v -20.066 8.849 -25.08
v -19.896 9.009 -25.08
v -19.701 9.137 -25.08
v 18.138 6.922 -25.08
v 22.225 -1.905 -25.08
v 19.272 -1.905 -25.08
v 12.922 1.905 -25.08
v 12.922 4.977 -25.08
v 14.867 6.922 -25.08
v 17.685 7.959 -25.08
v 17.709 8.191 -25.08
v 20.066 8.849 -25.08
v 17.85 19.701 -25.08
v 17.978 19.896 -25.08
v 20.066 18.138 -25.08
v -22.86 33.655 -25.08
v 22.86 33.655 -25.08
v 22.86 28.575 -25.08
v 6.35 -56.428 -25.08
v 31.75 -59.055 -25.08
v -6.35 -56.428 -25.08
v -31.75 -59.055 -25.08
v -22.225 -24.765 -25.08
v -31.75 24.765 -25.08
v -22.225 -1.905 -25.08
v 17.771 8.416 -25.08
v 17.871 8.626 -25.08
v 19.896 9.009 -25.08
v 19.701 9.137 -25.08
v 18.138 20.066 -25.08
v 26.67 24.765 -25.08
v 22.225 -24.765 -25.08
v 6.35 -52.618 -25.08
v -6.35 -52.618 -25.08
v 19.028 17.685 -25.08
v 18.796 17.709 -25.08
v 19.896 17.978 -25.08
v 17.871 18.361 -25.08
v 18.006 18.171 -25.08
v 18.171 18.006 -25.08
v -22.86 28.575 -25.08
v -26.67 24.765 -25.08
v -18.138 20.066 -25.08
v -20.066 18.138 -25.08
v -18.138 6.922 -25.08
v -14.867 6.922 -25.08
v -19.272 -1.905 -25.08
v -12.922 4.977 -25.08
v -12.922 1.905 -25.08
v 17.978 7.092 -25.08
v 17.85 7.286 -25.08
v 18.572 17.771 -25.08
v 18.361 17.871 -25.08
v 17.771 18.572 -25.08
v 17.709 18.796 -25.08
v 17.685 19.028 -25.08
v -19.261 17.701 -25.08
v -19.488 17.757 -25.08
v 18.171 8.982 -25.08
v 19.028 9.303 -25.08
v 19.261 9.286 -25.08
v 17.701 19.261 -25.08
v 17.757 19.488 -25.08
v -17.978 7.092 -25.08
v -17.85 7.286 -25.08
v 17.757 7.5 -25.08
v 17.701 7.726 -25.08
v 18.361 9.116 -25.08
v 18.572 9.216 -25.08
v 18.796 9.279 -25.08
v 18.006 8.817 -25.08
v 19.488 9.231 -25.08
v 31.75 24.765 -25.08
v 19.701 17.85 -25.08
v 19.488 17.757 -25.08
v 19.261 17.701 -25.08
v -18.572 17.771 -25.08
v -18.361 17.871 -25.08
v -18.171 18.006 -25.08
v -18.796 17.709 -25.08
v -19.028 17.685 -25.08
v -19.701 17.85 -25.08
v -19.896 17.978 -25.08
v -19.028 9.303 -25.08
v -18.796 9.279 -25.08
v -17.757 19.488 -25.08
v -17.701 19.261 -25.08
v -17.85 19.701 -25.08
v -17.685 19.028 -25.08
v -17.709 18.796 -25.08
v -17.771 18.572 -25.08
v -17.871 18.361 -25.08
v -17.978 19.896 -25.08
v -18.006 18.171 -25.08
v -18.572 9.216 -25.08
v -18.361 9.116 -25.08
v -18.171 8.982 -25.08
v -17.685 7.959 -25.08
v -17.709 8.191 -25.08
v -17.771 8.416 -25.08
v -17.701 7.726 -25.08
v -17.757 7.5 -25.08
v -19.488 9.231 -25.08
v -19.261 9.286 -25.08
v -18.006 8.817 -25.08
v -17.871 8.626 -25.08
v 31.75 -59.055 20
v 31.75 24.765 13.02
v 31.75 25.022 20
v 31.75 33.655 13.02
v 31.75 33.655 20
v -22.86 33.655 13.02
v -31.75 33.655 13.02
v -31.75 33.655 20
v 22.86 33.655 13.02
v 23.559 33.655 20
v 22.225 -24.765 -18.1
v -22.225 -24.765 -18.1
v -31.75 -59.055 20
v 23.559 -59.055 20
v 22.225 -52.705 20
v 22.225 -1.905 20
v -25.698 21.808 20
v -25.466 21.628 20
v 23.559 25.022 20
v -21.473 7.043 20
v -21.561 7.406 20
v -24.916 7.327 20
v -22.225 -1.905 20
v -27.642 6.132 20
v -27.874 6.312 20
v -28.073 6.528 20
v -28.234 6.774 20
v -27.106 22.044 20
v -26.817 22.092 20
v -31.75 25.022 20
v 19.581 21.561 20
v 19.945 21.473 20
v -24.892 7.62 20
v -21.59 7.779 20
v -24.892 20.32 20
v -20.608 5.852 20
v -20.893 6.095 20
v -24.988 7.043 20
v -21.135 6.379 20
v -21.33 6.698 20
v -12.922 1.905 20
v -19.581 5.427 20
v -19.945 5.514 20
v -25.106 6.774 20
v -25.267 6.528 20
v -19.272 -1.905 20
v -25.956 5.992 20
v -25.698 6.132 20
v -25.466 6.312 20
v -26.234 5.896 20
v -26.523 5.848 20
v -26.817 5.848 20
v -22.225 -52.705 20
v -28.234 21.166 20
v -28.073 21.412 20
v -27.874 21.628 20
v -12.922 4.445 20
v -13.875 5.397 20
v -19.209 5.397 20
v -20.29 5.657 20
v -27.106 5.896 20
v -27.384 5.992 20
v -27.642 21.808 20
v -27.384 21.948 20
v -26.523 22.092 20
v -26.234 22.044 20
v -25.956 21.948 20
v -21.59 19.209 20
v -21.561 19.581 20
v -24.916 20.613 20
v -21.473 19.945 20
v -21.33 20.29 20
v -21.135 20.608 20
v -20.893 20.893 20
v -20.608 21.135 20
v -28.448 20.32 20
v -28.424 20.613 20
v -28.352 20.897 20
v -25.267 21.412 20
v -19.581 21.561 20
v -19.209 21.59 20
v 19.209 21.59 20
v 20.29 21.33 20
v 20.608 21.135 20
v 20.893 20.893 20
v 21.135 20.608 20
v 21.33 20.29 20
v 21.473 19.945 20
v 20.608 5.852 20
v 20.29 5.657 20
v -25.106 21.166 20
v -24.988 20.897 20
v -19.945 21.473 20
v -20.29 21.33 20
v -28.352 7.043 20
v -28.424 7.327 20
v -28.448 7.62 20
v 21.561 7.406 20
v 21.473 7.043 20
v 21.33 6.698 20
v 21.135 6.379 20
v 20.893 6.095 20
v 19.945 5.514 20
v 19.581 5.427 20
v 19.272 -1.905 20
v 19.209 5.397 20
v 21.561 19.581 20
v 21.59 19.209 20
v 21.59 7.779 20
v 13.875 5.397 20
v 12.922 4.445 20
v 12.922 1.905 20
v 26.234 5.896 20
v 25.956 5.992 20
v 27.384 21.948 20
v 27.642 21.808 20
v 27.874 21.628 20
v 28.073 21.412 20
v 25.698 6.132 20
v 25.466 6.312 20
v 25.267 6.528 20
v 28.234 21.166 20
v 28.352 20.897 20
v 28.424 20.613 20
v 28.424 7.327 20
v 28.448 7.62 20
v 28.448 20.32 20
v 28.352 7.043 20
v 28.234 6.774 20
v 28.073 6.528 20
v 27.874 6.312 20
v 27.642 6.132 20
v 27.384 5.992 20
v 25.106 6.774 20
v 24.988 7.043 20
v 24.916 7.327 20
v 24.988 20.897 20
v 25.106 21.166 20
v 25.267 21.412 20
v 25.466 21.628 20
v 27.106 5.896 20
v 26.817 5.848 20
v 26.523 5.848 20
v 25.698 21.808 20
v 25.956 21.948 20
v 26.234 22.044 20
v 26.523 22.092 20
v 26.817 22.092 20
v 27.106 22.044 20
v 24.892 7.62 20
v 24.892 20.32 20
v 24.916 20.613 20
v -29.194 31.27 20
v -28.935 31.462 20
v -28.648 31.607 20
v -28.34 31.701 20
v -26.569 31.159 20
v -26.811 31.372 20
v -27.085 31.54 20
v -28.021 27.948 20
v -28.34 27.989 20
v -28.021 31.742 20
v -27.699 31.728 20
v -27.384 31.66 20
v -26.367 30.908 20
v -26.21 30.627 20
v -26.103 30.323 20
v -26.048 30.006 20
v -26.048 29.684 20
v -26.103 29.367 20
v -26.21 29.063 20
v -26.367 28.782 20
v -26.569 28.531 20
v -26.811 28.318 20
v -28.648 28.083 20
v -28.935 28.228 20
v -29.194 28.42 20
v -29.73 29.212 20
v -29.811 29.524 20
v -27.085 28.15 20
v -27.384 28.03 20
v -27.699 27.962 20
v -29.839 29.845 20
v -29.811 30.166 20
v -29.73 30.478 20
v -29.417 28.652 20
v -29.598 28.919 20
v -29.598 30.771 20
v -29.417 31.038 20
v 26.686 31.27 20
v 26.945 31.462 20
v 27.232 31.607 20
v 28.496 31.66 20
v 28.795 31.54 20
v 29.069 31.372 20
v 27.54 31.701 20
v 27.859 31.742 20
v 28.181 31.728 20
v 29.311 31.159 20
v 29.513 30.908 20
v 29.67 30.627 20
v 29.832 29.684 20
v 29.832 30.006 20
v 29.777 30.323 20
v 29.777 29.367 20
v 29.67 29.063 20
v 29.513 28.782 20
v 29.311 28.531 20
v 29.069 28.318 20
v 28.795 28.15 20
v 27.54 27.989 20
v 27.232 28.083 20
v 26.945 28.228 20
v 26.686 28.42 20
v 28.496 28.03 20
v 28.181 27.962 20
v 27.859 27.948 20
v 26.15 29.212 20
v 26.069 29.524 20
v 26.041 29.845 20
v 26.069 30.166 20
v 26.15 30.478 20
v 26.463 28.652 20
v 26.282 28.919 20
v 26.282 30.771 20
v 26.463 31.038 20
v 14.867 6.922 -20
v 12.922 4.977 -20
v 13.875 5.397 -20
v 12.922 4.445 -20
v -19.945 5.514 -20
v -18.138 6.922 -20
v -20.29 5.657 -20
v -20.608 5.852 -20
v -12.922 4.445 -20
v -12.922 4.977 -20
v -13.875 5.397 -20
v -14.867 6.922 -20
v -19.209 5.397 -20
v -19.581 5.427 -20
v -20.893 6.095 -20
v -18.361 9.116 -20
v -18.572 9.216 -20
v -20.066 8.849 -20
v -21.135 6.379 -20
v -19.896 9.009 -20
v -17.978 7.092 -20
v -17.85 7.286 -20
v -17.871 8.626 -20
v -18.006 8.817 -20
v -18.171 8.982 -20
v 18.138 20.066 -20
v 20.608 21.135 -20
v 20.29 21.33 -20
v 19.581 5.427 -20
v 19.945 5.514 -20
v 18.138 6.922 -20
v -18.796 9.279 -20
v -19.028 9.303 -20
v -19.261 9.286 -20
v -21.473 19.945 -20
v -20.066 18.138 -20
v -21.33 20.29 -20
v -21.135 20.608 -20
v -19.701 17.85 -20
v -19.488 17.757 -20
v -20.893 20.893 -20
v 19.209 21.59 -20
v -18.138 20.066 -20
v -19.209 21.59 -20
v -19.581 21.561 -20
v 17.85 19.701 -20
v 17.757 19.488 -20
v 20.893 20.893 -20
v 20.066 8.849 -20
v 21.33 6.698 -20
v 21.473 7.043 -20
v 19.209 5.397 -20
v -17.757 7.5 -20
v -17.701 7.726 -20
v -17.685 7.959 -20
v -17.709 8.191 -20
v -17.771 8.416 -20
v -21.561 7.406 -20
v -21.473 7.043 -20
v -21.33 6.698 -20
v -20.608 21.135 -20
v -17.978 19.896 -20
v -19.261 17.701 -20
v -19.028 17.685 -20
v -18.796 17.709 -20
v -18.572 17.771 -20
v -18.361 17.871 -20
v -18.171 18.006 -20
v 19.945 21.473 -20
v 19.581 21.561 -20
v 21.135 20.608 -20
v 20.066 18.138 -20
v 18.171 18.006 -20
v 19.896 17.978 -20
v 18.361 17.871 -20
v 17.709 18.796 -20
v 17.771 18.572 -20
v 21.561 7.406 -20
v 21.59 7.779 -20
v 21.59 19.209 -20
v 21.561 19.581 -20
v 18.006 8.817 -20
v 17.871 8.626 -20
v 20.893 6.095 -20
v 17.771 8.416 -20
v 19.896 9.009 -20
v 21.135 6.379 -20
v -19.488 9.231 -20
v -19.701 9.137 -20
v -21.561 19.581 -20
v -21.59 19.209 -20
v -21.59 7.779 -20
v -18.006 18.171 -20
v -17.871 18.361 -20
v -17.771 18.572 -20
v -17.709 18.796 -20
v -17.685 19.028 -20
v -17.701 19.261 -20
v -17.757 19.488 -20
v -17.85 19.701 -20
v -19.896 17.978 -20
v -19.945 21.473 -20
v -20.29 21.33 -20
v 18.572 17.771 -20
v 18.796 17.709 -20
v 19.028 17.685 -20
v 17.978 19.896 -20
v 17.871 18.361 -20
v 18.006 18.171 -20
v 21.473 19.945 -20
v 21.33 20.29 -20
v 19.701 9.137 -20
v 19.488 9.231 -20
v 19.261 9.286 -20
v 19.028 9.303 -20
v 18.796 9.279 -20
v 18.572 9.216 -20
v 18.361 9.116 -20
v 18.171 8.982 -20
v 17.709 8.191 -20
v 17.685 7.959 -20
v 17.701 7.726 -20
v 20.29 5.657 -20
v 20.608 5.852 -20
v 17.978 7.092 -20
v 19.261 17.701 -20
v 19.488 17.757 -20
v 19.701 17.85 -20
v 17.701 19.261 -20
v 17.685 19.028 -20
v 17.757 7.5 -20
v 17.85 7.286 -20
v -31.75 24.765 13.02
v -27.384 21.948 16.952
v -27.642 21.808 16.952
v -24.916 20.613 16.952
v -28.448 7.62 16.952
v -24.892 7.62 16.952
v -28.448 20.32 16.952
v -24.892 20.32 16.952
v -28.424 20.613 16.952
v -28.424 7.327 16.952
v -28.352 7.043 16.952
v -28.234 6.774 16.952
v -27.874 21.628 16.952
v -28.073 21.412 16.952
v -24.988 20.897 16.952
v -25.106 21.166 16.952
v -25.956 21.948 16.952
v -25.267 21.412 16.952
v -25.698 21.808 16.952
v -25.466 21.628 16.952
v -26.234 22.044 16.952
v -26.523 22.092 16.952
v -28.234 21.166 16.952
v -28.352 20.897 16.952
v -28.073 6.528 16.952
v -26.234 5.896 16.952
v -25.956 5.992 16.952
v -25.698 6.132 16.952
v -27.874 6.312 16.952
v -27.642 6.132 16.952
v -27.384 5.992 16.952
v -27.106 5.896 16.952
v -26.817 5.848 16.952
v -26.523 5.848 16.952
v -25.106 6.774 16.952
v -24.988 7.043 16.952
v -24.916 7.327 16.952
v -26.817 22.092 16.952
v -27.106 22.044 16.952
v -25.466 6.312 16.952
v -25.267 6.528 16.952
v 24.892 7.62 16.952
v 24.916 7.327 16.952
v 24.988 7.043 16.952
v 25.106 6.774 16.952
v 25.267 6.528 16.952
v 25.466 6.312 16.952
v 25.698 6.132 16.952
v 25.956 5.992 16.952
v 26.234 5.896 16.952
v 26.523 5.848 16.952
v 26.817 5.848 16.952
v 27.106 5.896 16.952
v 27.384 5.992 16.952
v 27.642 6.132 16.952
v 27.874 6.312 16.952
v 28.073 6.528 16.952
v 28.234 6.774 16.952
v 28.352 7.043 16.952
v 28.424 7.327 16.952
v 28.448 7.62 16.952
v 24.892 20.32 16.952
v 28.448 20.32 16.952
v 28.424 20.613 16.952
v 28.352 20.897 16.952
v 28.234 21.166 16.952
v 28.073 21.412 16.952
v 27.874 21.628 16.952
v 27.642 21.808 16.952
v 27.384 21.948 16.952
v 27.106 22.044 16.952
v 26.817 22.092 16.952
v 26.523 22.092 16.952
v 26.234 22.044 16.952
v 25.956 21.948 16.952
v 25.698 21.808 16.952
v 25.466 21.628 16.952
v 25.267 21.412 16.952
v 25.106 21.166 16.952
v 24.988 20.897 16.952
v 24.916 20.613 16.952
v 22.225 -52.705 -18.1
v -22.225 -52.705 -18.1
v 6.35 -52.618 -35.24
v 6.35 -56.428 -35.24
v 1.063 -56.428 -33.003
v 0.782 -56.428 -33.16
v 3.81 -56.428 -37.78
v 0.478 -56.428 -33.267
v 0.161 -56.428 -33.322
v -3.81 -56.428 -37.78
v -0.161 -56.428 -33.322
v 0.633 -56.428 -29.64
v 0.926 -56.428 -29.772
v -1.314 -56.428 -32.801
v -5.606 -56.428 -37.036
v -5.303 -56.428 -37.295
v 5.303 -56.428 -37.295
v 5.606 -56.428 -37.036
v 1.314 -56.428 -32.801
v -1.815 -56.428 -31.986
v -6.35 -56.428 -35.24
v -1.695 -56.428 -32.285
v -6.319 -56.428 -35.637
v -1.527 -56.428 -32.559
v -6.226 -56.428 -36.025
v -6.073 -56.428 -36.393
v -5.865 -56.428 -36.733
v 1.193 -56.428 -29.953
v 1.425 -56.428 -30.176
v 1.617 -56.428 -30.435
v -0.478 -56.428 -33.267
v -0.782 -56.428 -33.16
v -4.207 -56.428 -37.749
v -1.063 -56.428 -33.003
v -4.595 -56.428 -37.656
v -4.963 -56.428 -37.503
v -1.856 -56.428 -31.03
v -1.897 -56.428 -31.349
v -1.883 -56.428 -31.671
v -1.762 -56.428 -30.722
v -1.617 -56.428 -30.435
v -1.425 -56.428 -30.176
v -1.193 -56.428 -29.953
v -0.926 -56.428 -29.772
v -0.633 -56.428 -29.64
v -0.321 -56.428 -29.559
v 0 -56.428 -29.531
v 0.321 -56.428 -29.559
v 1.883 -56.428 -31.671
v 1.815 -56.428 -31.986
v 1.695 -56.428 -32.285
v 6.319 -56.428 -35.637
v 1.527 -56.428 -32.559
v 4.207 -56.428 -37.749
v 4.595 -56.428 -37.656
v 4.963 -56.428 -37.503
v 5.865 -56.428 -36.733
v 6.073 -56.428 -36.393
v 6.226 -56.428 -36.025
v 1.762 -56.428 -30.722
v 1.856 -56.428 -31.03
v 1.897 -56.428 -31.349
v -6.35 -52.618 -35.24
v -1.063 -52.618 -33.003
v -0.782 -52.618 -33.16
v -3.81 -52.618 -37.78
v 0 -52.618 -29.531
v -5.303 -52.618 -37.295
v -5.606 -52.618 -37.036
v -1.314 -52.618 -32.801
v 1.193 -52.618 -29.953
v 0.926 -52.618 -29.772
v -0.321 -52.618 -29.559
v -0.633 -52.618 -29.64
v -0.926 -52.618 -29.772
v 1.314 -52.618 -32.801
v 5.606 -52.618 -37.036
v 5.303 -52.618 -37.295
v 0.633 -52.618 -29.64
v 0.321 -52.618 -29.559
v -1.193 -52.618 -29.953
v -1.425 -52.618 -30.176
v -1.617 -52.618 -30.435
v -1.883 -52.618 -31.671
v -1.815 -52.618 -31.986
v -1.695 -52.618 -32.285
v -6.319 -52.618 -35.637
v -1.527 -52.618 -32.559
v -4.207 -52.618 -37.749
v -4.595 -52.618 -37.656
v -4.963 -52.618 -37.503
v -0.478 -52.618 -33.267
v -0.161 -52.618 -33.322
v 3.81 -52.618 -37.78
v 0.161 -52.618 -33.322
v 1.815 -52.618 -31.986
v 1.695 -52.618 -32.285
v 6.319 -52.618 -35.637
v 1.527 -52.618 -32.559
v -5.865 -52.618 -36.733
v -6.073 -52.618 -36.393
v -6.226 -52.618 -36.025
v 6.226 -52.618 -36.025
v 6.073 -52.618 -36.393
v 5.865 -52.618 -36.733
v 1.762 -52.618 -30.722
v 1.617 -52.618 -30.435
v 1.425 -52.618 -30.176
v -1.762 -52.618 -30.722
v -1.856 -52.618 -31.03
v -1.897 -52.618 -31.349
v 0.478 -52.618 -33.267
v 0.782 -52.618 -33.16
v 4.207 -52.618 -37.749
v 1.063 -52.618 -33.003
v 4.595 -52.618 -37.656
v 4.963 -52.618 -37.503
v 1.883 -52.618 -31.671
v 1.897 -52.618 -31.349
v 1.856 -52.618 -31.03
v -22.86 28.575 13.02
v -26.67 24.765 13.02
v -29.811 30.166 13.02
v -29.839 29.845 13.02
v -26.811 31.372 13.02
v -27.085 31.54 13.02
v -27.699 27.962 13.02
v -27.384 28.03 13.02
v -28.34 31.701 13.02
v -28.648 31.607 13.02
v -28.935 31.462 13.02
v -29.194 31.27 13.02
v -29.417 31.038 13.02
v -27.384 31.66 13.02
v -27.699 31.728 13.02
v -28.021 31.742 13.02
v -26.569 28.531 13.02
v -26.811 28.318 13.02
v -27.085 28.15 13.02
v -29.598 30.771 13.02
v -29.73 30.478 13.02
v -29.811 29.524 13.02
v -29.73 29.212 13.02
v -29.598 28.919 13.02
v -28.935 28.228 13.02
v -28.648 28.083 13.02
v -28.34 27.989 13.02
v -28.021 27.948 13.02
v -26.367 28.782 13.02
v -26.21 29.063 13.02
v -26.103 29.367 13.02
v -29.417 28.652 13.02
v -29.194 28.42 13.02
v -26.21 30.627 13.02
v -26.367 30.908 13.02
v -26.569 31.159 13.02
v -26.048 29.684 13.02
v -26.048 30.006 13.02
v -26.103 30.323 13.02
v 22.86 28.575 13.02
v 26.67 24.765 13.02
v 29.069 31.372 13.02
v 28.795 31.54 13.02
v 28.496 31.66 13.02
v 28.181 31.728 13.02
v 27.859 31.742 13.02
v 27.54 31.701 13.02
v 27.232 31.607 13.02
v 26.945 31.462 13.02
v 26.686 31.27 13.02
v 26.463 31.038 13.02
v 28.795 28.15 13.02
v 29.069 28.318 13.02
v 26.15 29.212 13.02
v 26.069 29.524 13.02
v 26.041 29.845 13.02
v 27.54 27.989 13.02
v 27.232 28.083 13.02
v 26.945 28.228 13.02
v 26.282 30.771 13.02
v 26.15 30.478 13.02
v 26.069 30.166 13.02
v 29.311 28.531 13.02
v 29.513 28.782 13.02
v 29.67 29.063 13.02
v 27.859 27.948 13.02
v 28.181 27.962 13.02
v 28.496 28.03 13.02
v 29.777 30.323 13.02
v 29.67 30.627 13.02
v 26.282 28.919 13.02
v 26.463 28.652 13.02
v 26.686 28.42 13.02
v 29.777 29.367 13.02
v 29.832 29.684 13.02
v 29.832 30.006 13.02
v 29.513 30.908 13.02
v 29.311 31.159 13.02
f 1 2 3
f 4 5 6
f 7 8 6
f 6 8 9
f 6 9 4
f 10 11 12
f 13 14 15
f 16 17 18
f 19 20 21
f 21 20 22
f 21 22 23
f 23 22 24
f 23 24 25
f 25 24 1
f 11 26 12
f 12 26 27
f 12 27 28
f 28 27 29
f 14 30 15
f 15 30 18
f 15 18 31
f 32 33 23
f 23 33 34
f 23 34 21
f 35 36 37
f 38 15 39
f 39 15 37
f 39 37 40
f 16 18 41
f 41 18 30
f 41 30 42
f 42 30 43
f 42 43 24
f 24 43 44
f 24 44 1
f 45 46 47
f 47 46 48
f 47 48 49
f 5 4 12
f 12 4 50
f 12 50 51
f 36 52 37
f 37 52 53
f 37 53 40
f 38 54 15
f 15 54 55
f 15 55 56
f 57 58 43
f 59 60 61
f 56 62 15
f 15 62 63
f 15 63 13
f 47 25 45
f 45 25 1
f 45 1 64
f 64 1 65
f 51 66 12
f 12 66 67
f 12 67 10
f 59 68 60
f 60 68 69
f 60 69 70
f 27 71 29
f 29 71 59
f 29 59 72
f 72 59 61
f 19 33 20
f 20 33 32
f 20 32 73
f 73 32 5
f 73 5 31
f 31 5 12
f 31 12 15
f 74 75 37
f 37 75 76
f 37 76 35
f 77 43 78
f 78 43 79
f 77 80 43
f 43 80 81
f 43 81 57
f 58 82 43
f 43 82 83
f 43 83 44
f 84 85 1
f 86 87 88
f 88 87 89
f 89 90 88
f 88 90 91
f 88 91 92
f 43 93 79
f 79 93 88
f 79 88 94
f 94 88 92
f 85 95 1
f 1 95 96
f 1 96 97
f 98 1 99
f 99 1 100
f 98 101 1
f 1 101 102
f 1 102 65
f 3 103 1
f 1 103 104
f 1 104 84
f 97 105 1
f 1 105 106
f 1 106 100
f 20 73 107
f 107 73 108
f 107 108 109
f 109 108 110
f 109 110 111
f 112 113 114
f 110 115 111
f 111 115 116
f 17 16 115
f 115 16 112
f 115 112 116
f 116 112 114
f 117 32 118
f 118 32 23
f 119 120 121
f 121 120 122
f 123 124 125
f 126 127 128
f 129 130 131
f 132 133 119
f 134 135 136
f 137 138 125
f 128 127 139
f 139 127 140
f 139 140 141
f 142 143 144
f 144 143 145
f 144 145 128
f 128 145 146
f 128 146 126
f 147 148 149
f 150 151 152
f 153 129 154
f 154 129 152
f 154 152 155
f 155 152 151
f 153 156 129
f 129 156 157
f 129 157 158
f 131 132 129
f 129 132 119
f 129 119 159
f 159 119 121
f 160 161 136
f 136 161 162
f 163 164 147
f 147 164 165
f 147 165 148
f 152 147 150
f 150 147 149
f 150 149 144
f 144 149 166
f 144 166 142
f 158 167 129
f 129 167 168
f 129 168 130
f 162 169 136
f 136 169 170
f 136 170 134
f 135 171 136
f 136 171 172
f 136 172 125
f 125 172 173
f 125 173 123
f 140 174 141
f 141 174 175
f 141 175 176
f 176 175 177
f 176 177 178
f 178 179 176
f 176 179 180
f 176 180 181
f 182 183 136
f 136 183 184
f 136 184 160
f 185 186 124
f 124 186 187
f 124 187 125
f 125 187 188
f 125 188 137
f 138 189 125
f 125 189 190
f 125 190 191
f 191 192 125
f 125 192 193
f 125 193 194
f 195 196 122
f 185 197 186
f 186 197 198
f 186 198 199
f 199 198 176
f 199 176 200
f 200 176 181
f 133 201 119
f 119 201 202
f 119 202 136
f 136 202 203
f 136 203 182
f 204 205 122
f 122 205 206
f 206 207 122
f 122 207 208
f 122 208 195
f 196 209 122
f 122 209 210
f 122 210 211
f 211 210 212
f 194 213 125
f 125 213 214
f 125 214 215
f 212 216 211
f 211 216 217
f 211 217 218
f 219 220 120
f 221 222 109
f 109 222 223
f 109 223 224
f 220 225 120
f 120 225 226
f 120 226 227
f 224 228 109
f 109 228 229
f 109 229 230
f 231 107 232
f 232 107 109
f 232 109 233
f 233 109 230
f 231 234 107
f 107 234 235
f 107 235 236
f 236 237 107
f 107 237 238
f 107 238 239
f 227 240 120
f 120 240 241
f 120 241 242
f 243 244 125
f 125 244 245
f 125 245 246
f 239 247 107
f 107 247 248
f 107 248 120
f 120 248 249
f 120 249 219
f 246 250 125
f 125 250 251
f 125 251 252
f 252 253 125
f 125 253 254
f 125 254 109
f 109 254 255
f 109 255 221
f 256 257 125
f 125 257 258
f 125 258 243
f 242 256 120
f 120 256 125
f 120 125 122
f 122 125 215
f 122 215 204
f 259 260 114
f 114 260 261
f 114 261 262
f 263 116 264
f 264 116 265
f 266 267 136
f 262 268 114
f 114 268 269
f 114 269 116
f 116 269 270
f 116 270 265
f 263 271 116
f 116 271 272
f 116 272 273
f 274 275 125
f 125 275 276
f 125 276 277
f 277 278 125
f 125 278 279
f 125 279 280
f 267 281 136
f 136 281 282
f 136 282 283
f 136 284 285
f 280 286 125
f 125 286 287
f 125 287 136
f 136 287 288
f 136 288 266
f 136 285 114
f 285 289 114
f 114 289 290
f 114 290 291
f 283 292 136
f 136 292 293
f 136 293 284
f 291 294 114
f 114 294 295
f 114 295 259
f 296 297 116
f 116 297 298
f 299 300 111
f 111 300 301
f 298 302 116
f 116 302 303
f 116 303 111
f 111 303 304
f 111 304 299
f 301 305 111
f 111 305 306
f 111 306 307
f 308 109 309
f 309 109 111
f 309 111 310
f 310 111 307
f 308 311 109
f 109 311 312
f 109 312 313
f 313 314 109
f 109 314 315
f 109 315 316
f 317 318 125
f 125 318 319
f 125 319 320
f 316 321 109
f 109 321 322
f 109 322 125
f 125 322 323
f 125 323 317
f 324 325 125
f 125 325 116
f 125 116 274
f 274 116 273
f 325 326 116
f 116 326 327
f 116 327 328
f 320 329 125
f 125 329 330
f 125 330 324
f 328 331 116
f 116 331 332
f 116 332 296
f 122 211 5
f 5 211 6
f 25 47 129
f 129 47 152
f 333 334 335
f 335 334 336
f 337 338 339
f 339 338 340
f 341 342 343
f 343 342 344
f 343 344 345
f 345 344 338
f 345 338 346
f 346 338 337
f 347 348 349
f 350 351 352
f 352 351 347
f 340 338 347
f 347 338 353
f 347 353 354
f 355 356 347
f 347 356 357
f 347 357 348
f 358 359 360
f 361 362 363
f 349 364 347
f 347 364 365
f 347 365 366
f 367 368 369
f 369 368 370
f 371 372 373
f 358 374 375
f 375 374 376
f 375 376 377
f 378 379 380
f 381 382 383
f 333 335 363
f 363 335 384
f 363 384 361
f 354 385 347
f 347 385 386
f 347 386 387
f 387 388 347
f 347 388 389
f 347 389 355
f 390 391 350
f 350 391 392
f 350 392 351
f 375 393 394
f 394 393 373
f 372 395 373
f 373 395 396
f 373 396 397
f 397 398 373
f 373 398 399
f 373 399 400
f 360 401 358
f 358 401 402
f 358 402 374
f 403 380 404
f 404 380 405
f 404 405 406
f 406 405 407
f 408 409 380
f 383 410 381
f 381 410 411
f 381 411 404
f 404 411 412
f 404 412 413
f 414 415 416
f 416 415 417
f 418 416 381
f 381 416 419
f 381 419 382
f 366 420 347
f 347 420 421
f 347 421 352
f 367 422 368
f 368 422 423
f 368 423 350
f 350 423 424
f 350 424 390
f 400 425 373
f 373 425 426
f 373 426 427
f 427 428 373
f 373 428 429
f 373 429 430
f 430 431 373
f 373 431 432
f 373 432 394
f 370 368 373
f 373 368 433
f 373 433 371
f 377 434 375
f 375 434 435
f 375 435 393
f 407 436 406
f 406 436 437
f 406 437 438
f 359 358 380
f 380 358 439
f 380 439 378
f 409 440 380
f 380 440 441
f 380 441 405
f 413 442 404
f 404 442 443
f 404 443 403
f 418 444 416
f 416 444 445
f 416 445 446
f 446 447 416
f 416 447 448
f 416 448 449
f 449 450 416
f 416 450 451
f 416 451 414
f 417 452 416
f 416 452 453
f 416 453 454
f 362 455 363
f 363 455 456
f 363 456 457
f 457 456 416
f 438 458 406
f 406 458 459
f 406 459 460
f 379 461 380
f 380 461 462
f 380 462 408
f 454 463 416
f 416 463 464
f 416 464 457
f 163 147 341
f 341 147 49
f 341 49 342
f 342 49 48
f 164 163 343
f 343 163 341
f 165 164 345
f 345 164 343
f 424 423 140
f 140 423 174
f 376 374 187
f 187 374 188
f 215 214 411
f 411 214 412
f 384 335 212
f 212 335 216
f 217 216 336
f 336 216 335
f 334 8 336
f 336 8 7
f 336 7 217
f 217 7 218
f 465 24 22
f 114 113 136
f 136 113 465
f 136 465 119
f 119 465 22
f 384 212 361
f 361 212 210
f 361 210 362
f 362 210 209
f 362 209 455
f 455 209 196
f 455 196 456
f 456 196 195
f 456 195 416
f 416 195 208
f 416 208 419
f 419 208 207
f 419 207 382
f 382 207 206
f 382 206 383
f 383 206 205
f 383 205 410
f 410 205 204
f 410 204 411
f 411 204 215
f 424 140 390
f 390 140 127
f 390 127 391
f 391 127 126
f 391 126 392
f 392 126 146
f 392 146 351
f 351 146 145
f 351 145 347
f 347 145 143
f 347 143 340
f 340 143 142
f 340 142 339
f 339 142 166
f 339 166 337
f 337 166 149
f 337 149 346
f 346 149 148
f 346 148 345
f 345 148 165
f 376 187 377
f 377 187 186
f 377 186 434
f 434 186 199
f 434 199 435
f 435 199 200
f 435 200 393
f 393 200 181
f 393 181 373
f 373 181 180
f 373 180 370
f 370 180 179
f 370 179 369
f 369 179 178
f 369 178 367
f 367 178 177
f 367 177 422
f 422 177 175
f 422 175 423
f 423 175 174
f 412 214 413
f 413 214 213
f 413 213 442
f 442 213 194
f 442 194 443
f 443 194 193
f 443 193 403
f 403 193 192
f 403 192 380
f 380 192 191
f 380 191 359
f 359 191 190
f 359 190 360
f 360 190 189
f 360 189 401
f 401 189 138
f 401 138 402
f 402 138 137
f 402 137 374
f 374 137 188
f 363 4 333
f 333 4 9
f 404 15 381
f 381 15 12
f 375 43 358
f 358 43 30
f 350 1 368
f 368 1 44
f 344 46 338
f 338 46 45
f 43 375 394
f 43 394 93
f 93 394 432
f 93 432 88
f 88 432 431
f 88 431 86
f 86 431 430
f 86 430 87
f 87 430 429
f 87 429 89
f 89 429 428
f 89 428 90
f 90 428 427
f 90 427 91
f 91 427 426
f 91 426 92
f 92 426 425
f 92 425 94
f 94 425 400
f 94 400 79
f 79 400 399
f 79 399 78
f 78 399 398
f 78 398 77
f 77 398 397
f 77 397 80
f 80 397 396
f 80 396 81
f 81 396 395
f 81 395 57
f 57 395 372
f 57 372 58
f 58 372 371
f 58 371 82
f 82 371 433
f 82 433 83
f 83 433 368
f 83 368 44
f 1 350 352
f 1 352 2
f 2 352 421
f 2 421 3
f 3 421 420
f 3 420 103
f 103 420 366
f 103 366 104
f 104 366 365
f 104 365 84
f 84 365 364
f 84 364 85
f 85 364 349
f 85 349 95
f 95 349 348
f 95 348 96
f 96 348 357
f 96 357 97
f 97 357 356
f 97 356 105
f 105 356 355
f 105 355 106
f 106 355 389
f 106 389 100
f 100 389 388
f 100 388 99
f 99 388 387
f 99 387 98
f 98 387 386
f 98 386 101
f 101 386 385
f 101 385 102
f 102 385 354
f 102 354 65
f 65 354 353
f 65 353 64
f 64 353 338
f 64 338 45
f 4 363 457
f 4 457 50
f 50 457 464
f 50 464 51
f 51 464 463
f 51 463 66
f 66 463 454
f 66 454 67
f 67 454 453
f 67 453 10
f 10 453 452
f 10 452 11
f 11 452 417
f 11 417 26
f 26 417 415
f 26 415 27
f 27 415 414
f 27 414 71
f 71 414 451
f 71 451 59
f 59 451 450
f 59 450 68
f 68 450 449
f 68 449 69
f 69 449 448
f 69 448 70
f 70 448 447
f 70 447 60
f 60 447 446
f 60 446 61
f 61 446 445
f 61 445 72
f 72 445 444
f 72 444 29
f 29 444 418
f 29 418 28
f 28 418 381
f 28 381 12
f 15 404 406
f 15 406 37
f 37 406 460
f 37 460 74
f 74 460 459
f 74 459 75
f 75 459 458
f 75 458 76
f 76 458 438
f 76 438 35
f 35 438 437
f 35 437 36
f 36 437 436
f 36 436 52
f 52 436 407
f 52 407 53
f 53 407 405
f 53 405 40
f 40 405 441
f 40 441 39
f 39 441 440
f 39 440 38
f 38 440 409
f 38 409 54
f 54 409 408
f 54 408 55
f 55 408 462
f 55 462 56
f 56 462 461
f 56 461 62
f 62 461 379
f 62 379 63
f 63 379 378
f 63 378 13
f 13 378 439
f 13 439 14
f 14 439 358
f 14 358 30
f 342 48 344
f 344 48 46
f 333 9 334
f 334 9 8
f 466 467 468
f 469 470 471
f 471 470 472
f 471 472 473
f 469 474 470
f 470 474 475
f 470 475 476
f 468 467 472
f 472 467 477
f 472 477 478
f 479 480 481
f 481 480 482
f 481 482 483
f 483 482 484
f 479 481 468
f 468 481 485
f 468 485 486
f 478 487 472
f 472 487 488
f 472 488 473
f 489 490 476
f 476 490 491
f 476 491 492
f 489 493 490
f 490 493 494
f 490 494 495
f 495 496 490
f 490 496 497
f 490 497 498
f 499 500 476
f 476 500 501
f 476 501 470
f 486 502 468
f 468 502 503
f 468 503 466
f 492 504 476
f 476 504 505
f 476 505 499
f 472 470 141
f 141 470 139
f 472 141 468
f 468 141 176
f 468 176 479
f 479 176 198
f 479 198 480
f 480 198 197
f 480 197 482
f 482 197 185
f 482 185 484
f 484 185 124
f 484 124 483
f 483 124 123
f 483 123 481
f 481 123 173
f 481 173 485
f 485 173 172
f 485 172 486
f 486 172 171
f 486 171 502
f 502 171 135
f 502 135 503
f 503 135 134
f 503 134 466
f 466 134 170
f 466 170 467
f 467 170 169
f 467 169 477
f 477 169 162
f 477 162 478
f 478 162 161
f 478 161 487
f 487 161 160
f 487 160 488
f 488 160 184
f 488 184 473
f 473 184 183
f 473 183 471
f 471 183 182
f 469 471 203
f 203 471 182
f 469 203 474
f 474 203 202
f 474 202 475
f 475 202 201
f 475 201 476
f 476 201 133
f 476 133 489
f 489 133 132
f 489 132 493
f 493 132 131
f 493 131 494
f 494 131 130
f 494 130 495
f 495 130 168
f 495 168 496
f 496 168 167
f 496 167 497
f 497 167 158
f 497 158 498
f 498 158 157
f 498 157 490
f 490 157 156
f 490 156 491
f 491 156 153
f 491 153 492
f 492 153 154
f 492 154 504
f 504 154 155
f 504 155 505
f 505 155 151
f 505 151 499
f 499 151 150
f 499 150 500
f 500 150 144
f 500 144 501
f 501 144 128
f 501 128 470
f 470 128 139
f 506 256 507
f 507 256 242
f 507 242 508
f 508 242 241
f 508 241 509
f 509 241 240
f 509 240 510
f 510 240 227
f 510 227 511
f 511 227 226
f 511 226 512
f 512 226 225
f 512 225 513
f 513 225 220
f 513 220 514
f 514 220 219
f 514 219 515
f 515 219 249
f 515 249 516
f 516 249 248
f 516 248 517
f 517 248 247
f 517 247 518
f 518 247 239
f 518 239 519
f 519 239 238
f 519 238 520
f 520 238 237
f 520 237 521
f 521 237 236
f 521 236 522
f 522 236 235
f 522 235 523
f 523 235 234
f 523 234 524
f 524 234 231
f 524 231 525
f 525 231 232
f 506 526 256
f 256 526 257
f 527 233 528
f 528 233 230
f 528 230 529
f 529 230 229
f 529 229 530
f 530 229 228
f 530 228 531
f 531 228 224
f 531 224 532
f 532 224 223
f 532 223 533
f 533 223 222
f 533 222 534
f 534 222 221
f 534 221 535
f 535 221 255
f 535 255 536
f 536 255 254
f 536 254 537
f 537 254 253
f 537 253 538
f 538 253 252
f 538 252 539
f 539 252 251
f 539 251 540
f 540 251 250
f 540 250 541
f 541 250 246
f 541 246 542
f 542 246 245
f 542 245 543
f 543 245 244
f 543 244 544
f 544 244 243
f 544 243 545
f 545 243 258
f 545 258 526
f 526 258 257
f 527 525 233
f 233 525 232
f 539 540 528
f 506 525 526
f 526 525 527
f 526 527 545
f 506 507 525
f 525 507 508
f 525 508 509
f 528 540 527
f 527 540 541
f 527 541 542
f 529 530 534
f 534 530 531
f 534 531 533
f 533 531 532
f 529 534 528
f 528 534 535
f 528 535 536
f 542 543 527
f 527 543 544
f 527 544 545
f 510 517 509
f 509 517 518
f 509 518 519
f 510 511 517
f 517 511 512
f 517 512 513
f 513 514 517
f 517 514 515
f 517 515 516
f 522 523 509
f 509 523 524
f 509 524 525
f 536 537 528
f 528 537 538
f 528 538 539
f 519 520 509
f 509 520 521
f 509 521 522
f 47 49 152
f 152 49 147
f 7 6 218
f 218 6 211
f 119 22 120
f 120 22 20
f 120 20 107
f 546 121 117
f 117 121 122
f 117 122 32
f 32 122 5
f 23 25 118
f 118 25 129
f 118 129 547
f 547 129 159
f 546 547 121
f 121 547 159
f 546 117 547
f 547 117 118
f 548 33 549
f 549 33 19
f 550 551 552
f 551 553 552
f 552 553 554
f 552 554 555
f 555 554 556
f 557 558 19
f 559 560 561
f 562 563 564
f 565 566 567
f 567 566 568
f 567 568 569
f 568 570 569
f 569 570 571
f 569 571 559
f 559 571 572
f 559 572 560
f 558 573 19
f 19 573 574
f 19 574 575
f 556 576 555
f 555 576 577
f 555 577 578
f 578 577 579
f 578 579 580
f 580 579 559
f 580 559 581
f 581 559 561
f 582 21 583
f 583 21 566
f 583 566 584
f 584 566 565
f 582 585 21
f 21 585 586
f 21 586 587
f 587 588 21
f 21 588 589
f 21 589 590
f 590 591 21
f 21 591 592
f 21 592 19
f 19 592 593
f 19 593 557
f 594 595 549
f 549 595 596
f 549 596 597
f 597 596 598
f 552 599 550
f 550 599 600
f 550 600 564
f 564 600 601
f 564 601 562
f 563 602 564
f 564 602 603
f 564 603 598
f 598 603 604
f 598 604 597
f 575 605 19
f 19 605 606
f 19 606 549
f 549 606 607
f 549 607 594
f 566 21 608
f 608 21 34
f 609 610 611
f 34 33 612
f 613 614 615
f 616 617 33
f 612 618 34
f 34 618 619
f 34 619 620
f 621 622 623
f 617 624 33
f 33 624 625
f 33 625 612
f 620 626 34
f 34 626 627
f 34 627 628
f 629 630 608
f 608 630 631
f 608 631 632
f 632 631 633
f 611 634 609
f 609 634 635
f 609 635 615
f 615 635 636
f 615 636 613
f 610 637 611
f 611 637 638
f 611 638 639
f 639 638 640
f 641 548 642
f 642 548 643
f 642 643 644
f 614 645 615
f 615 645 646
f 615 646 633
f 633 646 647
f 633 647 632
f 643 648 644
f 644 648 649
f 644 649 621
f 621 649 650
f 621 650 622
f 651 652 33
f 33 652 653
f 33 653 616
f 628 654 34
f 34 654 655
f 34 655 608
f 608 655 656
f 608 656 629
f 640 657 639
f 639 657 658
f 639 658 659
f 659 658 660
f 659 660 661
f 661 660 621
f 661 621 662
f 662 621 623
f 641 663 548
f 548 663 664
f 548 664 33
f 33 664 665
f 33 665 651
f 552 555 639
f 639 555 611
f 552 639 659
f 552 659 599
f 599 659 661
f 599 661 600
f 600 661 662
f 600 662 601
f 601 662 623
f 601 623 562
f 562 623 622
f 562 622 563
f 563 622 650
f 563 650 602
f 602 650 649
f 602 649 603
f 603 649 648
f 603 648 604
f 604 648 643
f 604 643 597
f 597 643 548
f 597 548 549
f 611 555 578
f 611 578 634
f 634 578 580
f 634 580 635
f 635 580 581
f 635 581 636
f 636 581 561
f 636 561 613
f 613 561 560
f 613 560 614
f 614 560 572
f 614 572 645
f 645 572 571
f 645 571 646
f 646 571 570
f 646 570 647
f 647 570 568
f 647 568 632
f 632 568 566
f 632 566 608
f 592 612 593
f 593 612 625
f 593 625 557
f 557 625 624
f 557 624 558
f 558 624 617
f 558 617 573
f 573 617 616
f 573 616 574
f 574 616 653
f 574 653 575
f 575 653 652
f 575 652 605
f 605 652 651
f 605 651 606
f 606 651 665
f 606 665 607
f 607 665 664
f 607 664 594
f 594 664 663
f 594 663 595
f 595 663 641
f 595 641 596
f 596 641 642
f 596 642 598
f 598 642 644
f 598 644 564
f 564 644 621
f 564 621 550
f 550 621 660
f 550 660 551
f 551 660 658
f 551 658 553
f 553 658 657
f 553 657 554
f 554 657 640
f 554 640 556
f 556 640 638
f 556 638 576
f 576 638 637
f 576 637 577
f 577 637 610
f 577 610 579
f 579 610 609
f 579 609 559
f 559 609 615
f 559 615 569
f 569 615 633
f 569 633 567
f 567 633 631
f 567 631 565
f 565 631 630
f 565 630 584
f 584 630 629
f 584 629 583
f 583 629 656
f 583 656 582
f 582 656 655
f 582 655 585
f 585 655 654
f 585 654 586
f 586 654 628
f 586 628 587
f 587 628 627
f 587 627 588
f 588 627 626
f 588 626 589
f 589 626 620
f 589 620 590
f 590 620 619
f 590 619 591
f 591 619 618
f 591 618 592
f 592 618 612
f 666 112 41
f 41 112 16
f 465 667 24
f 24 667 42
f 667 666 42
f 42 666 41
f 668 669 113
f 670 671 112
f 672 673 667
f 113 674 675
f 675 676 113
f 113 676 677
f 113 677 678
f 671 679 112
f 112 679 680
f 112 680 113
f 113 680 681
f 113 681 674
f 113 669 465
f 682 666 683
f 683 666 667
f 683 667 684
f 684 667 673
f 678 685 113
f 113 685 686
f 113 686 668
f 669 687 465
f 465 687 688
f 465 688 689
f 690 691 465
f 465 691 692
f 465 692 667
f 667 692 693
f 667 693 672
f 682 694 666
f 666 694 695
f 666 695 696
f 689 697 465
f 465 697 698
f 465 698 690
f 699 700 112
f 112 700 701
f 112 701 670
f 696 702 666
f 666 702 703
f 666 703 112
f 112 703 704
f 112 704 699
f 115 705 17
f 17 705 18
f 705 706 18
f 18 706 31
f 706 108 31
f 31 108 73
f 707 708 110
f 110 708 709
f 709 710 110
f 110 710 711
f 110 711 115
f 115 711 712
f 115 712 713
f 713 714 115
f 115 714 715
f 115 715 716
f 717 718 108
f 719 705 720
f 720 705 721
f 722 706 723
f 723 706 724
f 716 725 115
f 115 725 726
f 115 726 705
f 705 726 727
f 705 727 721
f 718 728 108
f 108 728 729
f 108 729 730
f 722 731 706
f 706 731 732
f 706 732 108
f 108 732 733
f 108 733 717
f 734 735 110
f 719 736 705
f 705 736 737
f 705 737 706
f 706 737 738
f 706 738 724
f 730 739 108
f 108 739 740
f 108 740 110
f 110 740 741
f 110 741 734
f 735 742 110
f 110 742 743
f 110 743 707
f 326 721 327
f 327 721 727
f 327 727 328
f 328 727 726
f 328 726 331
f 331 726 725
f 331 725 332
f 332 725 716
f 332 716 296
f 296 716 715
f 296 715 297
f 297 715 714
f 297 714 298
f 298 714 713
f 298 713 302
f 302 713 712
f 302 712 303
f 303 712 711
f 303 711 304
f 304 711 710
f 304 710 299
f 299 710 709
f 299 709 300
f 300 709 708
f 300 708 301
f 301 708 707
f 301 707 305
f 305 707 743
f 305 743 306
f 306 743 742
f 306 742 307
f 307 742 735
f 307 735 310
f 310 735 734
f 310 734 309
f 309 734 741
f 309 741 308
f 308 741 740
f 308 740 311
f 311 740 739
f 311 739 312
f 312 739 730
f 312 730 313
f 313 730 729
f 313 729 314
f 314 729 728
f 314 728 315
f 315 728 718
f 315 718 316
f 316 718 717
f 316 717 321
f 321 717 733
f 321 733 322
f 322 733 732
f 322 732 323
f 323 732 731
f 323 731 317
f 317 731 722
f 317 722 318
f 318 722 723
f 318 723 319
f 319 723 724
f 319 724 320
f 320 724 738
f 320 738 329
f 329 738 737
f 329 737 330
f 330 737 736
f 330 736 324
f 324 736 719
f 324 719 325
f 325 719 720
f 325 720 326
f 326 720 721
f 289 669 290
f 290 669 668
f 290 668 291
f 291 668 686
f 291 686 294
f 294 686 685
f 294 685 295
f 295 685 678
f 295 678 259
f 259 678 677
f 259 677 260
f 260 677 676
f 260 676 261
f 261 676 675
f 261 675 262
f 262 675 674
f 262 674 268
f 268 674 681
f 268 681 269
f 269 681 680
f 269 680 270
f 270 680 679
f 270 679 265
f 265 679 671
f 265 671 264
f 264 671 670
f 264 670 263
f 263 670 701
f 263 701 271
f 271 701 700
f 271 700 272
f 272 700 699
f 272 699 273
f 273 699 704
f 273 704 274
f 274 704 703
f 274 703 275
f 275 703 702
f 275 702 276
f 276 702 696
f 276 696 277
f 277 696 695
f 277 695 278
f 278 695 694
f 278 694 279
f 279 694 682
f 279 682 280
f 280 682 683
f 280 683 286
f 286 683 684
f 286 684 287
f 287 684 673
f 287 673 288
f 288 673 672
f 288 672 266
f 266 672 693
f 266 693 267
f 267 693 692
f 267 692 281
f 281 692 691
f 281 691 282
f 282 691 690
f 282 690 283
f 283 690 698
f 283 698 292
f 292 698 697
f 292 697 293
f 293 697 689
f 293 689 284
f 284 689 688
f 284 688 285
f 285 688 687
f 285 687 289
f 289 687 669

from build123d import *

# Parameters (mm, degrees)
BOSS_EXTRU_1_DEPTH      = 20
CONG_1_R                = 2.38125
ESQUISSE2_W             = 63.5
ESQUISSE2_H             = 35.56
BOSS_EXTRU_2_DEPTH      = 5.08
EMPREINTE1_START        = -25.08
EMPREINTE1_DEPTH        = 5.08
D_PLACER_START          = -25.08
D_PLACER_LA_FACE1_DEPTH = 5.08
EMPREINTE4_START        = 17.46
EMPREINTE4_DEPTH        = 2.54
D_PLACER_START_2        = 16.952
D_PLACER_LA_FACE2_DEPTH = 3.048
CHANFREIN1_SIZE         = 6.35
CHANFREIN1_SIZE2        = 3.81
CHANFREIN2_SIZE         = 3.81
CHANFREIN2_SIZE2        = 6.35
BOSS_EXTRU_3_DEPTH      = 45.08
ESQUISSE4_W             = 44.45
ESQUISSE4_H             = 27.94
ENL_V_MAT_EXTRU_1_DEPTH = 38.1
ESQUISSE5_W             = 12.7
ESQUISSE5_H             = 3.81
BOSS_EXTRU_4_DEPTH      = 12.7
CONG_2_R                = 2.54
D_GAGEMENT_61_D         = 3.7973
ENL_V_MAT_EXTRU_2_DEPTH = 38.1
D_GAGEMENT_62_D         = 3.7973
D_GAGEMENT_62_DEPTH     = 18.796
D_GAGEMENT_62_TIP       = 1.140824014


# Read off the part's stored shape, not the designer's step: Empreinte1, Déplacer la face1, Empreinte4, Déplacer la face2
with BuildPart() as part:
    # Esquisse1 → Boss.-Extru.1 (new, symmetric)
    with BuildSketch(Plane.XY):
        Polygon((-31.75, -1.905), (-31.75, 33.655), (31.75, 33.655), (31.75, -1.905), (12.92225, -1.905), (12.92225, 4.445), (13.87475, 5.3975), (21.59, 5.3975), (21.59, 21.59), (-21.59, 21.59), (-21.59, 5.3975), (-13.87475, 5.3975), (-12.92225, 4.445), (-12.92225, -1.905), align=None)
    extrude(amount=BOSS_EXTRU_1_DEPTH, both=True)

    # Congé1
    cong_1_edges = [part.edges().sort_by_distance(p)[0] for p in [
        (21.59, 5.3975, 0),
        (21.59, 21.59, 0),
        (-21.59, 21.59, 0),
        (-21.59, 5.3975, 0),
    ]]
    fillet(cong_1_edges, radius=CONG_1_R)

    # Esquisse2 → Boss.-Extru.2 (add)
    with BuildSketch(Plane(origin=(0, 0, -20), x_dir=(-1, 0, 0), z_dir=(0, 0, -1))):
        with Locations((0, 15.875)):
            Rectangle(ESQUISSE2_W, ESQUISSE2_H)
    extrude(amount=BOSS_EXTRU_2_DEPTH)

    # Empreinte1 outline → Empreinte1 (cut)
    with BuildSketch(Plane.XY.offset(EMPREINTE1_START)):
        with BuildLine():
            Line((14.44625, 7.9375), (16.66875, 7.9375))
            ThreePointArc((16.66875, 7.9375), (17.366201977, 9.621298023), (19.05, 10.31875))
            Line((19.05, 10.31875), (19.05, 16.66875))
            ThreePointArc((19.05, 16.66875), (17.366201977, 17.366201977), (16.66875, 19.05))
            Line((16.66875, 19.05), (-16.66875, 19.05))
            ThreePointArc((-16.66875, 19.05), (-17.366201977, 17.366201977), (-19.05, 16.66875))
            Line((-19.05, 16.66875), (-19.05, 10.31875))
            ThreePointArc((-19.05, 10.31875), (-17.366201977, 9.621298023), (-16.66875, 7.9375))
            Line((-16.66875, 7.9375), (-14.44625, 7.9375))
            Line((-14.44625, 7.9375), (-11.90625, 5.3975))
            Line((-11.90625, 5.3975), (-11.90625, -1.905))
            Line((-11.90625, -1.905), (11.90625, -1.905))
            Line((11.90625, -1.905), (11.90625, 5.3975))
            Line((11.90625, 5.3975), (14.44625, 7.9375))
        make_face()
    extrude(amount=EMPREINTE1_DEPTH, mode=Mode.SUBTRACT)

    # Déplacer la face1 outline → Déplacer la face1 (cut)
    with BuildSketch(Plane.XY.offset(D_PLACER_START)):
        with BuildLine():
            Line((-14.867090979, 6.9215), (-12.92225, 4.976659021))
            Line((-12.92225, 4.976659021), (-12.92225, -1.905))
            Line((-12.92225, -1.905), (-11.90625, -1.905))
            Line((-11.90625, -1.905), (-11.90625, 5.3975))
            Line((-11.90625, 5.3975), (-14.44625, 7.9375))
            Line((-14.44625, 7.9375), (-16.66875, 7.9375))
            ThreePointArc((-16.66875, 7.9375), (-17.366201977, 9.621298023), (-19.05, 10.31875))
            Line((-19.05, 10.31875), (-19.05, 16.66875))
            ThreePointArc((-19.05, 16.66875), (-17.366201977, 17.366201977), (-16.66875, 19.05))
            Line((-16.66875, 19.05), (16.66875, 19.05))
            ThreePointArc((16.66875, 19.05), (17.366201977, 17.366201977), (19.05, 16.66875))
            Line((19.05, 16.66875), (19.05, 10.31875))
            ThreePointArc((19.05, 10.31875), (17.366201977, 9.621298023), (16.66875, 7.9375))
            Line((16.66875, 7.9375), (14.44625, 7.9375))
            Line((14.44625, 7.9375), (11.90625, 5.3975))
            Line((11.90625, 5.3975), (11.90625, -1.905))
            Line((11.90625, -1.905), (12.92225, -1.905))
            Line((12.92225, -1.905), (12.92225, 4.976659021))
            Line((12.92225, 4.976659021), (14.867090979, 6.9215))
            Line((14.867090979, 6.9215), (18.13805068, 6.9215))
            ThreePointArc((18.13805068, 6.9215), (18.084622467, 8.902877533), (20.066, 8.84944932))
            Line((20.066, 8.84944932), (20.066, 18.13805068))
            ThreePointArc((20.066, 18.13805068), (18.084622467, 18.084622467), (18.13805068, 20.066))
            Line((18.13805068, 20.066), (-18.13805068, 20.066))
            ThreePointArc((-18.13805068, 20.066), (-18.084622467, 18.084622467), (-20.066, 18.13805068))
            Line((-20.066, 18.13805068), (-20.066, 8.84944932))
            ThreePointArc((-20.066, 8.84944932), (-18.084622467, 8.902877533), (-18.13805068, 6.9215))
            Line((-18.13805068, 6.9215), (-14.867090979, 6.9215))
        make_face()
    extrude(amount=D_PLACER_LA_FACE1_DEPTH, mode=Mode.SUBTRACT)

    # Empreinte4 outline → Empreinte4 (cut)
    with BuildSketch(Plane.XY.offset(EMPREINTE4_START)):
        with BuildLine():
            ThreePointArc((-27.94, 7.62), (-26.67, 6.35), (-25.4, 7.62))
            Line((-25.4, 7.62), (-25.4, 20.32))
            ThreePointArc((-25.4, 20.32), (-26.67, 21.59), (-27.94, 20.32))
            Line((-27.94, 20.32), (-27.94, 7.62))
        make_face()
        with BuildLine():
            Line((25.4, 20.32), (25.4, 7.62))
            ThreePointArc((25.4, 7.62), (26.67, 6.35), (27.94, 7.62))
            Line((27.94, 7.62), (27.94, 20.32))
            ThreePointArc((27.94, 20.32), (26.67, 21.59), (25.4, 20.32))
        make_face()
    extrude(amount=EMPREINTE4_DEPTH, mode=Mode.SUBTRACT)

    # Déplacer la face2 outline → Déplacer la face2 (cut)
    with BuildSketch(Plane.XY.offset(D_PLACER_START_2)):
        with BuildLine():
            ThreePointArc((-28.448, 7.62), (-26.67, 5.842), (-24.892, 7.62))
            Line((-24.892, 7.62), (-24.892, 20.32))
            ThreePointArc((-24.892, 20.32), (-26.67, 22.098), (-28.448, 20.32))
            Line((-28.448, 20.32), (-28.448, 7.62))
        make_face()
        with BuildLine():
            Line((24.892, 20.32), (24.892, 7.62))
            ThreePointArc((24.892, 7.62), (26.67, 5.842), (28.448, 7.62))
            Line((28.448, 7.62), (28.448, 20.32))
            ThreePointArc((28.448, 20.32), (26.67, 22.098), (24.892, 20.32))
        make_face()
    extrude(amount=D_PLACER_LA_FACE2_DEPTH, mode=Mode.SUBTRACT)

    # Chanfrein1
    chanfrein1_edges = [part.edges().sort_by_distance(p)[0] for p in [
        (-12.92225, -1.905, -2.54),
    ]]
    chanfrein1_side = [part.faces().sort_by_distance(p)[0] for p in [
        (-22.336125, -1.905, -2.54),
    ]]
    chamfer(chanfrein1_edges, length=CHANFREIN1_SIZE, length2=CHANFREIN1_SIZE2, reference=chanfrein1_side[0])

    # Chanfrein2
    chanfrein2_edges = [part.edges().sort_by_distance(p)[0] for p in [
        (12.92225, -1.905, -2.54),
    ]]
    chanfrein2_side = [part.faces().sort_by_distance(p)[0] for p in [
        (12.92225, 1.302160596, -2.726935132),
    ]]
    chamfer(chanfrein2_edges, length=CHANFREIN2_SIZE, length2=CHANFREIN2_SIZE2, reference=chanfrein2_side[0])

    # Esquisse3 → Boss.-Extru.3 (add)
    with BuildSketch(Plane.XY.offset(20)):
        Polygon((-31.75, -1.905), (-31.75, -59.055), (31.75, -59.055), (31.75, -1.905), (22.225, -1.905), (22.225, -24.765), (-22.225, -24.765), (-22.225, -1.905), align=None)
    extrude(amount=-BOSS_EXTRU_3_DEPTH)

    # Esquisse4 → Enlèv. mat.-Extru.1 (cut)
    with BuildSketch(Plane.XY.offset(20)):
        with Locations((0, -38.735)):
            Rectangle(ESQUISSE4_W, ESQUISSE4_H)
    extrude(amount=-ENL_V_MAT_EXTRU_1_DEPTH, mode=Mode.SUBTRACT)

    # Esquisse5 → Boss.-Extru.4 (add)
    with BuildSketch(Plane(origin=(0, 0, -25.08), x_dir=(-1, 0, 0), z_dir=(0, 0, -1))):
        with Locations((0, -54.522979854)):
            Rectangle(ESQUISSE5_W, ESQUISSE5_H)
    extrude(amount=BOSS_EXTRU_4_DEPTH)

    # Congé2
    cong_2_edges = [part.edges().sort_by_distance(p)[0] for p in [
        (6.35, -54.522979854, -37.78),
        (-6.35, -54.522979854, -37.78),
    ]]
    fillet(cong_2_edges, radius=CONG_2_R)

    # Dégagement #61 (through all)
    with Locations(Plane(origin=(0, -52.617979854, 0), x_dir=(1, 0, 0), z_dir=(0, 1, 0))):
        with Locations((0, 31.43)):
            Hole(D_GAGEMENT_61_D / 2)

    # Esquisse8 → Enlèv. mat.-Extru.2 (cut)
    with BuildSketch(Plane(origin=(0, 0, -25.08), x_dir=(-1, 0, 0), z_dir=(0, 0, -1))):
        Polygon((22.86, 33.655), (31.75, 33.655), (31.75, 24.765), (26.67, 24.765), (22.86, 28.575), align=None)
    enl_v_mat_extru_2 = extrude(amount=-ENL_V_MAT_EXTRU_2_DEPTH, mode=Mode.SUBTRACT)

    # Symétrie1: Enlèv. mat.-Extru.2 across plane
    add(enl_v_mat_extru_2.mirror(Plane(origin=(0, 0, 0), x_dir=(0, 0, 1), z_dir=(1, 0, 0))), mode=Mode.SUBTRACT)

    # Dégagement #62
    with Locations(Plane(origin=(0, 0, 13.02), x_dir=(-1, 0, 0), z_dir=(0, 0, -1))):
        with Locations((27.94, 29.845), (-27.94, 29.845)):
            Hole(D_GAGEMENT_62_D / 2, depth=D_GAGEMENT_62_DEPTH)
            with Locations((0, 0, -(D_GAGEMENT_62_DEPTH + D_GAGEMENT_62_TIP / 2))):  # 118° drill point
                Cone(0, D_GAGEMENT_62_D / 2, D_GAGEMENT_62_TIP, mode=Mode.SUBTRACT)


solid = part.part
